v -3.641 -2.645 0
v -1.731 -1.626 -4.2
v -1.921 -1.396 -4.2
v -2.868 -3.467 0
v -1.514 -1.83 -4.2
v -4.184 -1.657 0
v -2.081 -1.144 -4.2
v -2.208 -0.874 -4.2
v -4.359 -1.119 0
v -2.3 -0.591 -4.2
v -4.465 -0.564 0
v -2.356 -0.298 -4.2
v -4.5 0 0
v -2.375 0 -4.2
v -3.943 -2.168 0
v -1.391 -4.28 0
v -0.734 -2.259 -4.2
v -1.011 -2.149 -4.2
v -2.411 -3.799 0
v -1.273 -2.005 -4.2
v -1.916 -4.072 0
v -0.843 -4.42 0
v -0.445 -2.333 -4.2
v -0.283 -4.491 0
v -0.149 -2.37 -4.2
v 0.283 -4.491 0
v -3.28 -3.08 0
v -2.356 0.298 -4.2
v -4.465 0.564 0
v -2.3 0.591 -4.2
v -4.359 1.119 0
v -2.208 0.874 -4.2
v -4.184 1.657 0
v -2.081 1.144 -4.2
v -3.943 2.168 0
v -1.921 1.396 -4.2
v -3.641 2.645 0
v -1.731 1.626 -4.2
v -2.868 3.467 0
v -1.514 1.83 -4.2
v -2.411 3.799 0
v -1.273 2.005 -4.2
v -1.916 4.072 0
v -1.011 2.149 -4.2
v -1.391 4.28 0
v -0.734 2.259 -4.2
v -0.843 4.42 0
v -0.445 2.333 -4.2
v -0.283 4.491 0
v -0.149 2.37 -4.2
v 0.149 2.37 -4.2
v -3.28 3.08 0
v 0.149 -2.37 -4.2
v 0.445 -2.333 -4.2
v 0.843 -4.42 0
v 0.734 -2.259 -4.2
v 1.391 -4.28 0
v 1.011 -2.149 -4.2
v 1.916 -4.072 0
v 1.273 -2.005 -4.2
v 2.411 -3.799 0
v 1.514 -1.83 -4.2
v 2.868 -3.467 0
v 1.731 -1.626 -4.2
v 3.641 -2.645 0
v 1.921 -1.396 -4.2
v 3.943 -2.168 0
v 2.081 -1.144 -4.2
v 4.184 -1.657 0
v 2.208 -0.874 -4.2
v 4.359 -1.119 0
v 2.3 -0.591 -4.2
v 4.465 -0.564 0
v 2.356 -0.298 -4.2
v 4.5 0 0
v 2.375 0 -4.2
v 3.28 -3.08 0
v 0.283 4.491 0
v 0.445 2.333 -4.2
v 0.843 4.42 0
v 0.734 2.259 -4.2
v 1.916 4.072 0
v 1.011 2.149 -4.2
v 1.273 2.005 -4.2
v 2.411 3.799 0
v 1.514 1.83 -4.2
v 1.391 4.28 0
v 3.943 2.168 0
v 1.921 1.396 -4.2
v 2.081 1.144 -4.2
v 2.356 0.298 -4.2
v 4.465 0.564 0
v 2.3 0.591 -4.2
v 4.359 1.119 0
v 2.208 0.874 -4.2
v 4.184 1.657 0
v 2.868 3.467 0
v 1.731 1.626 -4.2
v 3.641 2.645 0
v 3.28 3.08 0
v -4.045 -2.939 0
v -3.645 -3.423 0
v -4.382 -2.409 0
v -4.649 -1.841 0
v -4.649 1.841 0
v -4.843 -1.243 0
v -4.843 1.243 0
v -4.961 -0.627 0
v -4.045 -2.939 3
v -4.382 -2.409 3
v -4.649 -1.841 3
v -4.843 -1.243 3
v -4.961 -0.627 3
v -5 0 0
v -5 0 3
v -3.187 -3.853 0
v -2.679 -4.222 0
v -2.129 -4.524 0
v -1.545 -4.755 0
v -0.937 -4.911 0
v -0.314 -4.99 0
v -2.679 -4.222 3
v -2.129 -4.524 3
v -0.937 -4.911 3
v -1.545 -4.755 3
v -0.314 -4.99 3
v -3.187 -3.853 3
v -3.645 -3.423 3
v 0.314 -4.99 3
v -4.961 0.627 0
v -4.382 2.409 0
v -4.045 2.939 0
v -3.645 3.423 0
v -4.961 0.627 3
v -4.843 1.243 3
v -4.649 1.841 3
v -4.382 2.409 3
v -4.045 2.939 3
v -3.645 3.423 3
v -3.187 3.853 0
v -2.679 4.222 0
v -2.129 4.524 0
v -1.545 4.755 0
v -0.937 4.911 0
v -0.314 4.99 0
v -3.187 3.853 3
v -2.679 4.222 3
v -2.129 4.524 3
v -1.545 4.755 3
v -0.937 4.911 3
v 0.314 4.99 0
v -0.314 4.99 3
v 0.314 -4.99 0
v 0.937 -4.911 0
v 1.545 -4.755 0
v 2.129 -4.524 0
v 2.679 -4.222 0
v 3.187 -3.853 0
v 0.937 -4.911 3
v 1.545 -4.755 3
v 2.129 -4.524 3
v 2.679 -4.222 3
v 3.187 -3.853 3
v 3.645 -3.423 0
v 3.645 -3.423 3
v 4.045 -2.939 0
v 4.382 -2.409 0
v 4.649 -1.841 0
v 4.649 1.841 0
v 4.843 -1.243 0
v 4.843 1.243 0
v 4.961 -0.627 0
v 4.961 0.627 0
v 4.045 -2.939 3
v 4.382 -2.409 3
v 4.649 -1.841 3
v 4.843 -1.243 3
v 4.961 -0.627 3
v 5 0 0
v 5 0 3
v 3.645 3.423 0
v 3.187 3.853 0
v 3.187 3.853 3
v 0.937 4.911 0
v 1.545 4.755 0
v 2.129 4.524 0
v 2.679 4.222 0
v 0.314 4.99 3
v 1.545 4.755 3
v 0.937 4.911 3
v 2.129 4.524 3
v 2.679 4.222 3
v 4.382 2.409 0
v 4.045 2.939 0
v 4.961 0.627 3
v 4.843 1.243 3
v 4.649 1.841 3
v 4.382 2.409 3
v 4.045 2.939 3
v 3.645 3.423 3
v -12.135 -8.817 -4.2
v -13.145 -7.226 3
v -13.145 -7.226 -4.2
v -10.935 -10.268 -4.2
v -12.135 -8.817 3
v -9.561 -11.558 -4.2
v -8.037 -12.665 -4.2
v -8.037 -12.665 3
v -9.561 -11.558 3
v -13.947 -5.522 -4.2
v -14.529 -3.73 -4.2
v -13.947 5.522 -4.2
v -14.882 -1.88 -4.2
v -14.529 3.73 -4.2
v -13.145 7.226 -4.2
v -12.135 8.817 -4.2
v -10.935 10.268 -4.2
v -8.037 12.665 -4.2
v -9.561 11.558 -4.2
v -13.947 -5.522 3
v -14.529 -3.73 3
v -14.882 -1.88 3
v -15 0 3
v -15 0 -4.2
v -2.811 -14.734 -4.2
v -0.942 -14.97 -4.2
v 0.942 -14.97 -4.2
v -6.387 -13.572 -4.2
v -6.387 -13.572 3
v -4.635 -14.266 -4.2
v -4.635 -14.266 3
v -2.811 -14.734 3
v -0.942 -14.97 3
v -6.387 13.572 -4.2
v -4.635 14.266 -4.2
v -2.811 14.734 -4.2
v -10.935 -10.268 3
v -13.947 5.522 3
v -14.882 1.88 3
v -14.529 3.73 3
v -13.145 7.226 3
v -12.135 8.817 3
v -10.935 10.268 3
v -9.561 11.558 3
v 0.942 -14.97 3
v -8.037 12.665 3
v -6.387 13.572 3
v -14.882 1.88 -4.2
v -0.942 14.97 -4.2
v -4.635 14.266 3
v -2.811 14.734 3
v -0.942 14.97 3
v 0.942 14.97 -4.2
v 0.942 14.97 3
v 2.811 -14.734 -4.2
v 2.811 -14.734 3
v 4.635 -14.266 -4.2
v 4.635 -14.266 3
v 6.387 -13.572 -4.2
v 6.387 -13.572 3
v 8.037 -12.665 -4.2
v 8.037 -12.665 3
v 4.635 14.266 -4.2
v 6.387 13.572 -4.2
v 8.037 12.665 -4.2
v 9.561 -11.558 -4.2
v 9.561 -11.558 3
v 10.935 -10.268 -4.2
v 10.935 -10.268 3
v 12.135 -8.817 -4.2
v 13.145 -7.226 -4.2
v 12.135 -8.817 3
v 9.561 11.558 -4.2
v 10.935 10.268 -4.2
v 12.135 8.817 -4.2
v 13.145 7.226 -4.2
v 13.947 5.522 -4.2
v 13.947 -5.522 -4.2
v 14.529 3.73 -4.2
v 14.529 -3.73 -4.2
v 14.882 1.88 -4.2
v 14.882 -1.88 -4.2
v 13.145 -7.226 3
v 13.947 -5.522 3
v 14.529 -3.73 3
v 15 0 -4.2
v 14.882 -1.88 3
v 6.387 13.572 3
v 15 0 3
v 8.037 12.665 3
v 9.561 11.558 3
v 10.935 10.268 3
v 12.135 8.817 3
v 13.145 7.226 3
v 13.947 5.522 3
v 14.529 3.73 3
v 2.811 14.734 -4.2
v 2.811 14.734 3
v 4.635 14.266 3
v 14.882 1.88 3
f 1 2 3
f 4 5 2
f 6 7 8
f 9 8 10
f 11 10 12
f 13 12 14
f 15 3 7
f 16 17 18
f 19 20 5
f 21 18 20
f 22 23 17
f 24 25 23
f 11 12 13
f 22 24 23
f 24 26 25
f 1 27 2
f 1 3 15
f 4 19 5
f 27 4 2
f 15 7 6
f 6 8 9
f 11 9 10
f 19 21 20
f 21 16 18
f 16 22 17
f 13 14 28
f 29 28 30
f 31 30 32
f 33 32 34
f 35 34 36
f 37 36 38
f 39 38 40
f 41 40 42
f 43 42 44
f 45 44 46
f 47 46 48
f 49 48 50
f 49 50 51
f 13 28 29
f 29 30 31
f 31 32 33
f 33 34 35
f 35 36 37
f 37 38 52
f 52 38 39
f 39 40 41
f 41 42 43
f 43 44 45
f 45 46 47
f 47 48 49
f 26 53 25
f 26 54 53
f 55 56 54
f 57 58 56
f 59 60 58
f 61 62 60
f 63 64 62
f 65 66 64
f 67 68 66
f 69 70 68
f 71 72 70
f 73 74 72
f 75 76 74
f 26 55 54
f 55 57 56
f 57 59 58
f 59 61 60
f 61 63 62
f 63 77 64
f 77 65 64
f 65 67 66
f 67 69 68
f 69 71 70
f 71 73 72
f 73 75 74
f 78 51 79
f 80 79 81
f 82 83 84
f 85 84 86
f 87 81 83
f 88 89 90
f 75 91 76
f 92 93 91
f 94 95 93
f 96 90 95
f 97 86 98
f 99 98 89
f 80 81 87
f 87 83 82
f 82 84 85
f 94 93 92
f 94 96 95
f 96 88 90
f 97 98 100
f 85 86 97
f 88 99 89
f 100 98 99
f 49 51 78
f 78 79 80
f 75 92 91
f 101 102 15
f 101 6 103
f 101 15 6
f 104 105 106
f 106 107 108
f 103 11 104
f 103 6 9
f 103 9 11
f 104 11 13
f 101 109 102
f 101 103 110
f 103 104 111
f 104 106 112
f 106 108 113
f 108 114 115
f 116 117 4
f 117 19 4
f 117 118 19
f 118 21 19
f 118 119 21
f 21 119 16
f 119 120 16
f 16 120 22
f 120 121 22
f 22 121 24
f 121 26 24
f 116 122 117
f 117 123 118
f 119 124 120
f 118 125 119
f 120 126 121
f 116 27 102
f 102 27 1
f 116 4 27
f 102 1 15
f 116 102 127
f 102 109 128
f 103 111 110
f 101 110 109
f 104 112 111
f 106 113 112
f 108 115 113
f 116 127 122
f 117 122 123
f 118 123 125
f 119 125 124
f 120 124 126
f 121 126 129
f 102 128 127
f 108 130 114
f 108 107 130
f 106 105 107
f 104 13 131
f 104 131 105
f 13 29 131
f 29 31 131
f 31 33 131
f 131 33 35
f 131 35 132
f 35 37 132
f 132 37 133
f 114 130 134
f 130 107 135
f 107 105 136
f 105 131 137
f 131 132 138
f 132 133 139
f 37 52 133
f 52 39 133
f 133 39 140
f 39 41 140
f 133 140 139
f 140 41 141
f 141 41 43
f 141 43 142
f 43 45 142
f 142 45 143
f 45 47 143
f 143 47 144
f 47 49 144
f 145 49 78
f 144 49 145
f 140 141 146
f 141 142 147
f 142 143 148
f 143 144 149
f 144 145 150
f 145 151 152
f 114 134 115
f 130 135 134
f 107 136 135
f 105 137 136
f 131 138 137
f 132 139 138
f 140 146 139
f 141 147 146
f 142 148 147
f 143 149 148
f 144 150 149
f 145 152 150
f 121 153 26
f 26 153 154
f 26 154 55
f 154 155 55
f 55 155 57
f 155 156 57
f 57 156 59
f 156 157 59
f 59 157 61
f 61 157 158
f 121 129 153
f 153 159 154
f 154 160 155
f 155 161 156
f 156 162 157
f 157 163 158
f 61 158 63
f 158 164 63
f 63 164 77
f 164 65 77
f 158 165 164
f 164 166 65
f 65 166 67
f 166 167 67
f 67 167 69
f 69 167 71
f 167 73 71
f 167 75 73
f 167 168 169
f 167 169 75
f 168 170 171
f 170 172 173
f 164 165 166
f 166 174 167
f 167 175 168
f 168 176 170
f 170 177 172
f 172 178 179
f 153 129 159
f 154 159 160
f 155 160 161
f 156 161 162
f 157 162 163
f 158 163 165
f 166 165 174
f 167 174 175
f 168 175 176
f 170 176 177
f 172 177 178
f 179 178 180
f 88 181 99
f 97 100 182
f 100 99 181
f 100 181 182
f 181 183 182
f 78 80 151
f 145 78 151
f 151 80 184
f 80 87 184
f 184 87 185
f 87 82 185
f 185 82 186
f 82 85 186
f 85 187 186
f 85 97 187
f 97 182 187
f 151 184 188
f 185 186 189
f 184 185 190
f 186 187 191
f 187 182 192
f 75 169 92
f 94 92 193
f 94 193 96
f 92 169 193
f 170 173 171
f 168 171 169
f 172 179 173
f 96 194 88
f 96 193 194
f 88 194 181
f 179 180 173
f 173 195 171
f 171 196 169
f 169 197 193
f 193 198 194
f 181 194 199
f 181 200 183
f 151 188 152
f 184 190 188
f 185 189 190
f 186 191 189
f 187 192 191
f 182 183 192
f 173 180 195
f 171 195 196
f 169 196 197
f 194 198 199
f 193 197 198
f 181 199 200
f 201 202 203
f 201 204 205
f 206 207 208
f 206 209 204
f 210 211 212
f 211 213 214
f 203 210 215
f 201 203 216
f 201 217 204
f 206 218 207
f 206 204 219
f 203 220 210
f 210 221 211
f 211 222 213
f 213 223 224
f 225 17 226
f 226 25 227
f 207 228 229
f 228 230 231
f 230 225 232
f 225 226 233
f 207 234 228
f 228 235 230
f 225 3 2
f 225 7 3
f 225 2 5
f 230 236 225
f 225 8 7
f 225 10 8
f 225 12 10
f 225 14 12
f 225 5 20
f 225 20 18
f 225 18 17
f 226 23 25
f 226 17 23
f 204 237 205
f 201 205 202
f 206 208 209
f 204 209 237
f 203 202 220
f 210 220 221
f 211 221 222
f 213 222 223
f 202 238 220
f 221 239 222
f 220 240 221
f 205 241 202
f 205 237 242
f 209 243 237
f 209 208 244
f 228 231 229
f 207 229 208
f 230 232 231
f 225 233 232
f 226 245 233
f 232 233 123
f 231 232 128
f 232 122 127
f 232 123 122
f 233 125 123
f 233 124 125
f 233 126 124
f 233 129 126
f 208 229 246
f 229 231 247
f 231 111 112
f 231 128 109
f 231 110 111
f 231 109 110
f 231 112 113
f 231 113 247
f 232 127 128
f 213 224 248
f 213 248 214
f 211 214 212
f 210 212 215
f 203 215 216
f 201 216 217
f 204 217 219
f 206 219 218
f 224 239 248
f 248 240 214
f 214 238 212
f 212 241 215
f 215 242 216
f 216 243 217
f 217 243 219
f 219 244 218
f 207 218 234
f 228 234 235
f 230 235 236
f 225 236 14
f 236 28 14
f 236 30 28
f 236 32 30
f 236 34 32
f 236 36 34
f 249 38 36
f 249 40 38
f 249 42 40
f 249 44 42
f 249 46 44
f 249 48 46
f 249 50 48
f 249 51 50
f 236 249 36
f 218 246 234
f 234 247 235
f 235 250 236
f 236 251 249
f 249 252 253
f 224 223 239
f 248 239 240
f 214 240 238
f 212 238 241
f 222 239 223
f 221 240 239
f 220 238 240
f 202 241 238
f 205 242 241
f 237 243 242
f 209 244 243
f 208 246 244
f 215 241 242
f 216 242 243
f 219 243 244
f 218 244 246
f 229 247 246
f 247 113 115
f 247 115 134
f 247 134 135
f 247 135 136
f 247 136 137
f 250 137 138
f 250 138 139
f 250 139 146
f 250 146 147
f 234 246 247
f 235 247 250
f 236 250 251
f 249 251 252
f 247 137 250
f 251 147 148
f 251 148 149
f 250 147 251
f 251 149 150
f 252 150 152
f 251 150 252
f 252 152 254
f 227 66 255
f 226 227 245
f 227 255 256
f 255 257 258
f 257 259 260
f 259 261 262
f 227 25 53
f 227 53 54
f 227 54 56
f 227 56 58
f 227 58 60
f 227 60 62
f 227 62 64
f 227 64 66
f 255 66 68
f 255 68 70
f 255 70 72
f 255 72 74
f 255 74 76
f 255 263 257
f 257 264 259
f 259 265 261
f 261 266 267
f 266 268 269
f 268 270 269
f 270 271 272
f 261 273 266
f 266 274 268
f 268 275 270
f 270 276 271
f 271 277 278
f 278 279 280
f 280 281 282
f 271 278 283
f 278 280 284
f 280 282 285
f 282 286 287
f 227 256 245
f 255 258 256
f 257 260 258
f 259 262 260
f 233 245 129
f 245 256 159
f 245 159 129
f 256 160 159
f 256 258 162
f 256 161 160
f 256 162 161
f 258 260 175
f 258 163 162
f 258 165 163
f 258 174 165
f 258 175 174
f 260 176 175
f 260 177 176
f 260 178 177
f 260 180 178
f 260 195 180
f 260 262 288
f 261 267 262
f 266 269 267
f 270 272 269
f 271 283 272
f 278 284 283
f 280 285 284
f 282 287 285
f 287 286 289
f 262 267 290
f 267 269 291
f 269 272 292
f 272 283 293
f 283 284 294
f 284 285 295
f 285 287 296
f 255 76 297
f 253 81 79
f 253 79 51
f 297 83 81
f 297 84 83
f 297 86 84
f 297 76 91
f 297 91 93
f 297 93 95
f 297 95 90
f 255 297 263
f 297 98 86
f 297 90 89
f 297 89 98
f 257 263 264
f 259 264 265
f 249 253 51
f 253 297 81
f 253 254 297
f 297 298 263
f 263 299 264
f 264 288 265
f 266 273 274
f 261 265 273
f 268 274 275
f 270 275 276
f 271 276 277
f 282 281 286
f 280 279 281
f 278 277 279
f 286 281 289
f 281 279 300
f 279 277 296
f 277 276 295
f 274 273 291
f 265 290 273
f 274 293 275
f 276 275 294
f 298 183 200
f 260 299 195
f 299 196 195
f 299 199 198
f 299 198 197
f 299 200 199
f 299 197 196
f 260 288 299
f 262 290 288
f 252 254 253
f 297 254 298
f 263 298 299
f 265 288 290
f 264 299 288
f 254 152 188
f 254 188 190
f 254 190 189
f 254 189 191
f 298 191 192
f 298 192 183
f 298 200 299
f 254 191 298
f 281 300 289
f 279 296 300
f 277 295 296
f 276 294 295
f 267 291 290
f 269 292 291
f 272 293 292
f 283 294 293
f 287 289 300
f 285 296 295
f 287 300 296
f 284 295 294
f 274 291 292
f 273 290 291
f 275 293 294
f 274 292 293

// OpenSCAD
$fn = 50;

difference() {
	union() {
		translate(v = [0, 0, -4.2]) {
			cylinder(h = 7.2, r = 15.0);
		}
	}
	union() {
		translate(v = [0, 0, 0]) {
			rotate(a = [0, 0, 0]) {
				difference() {
					union() {
						translate(v = [0, 0, -7.2]) {
							cylinder(h = 7.2, r = 2.25);
						}
						translate(v = [0, 0, -4.2]) {
							cylinder(h = 4.2, r1 = 2.375, r2 = 4.5);
						}
						translate(v = [0, 0, -7.2]) {
							cylinder(h = 7.2, r = 2.375);
						}
						translate(v = [0, 0, -7.2]) {
							cylinder(h = 7.2, r = 2.25);
						}
					}
					union();
				}
			}
		}
		#cylinder(h = 3, r = 5.0);
	}
}
